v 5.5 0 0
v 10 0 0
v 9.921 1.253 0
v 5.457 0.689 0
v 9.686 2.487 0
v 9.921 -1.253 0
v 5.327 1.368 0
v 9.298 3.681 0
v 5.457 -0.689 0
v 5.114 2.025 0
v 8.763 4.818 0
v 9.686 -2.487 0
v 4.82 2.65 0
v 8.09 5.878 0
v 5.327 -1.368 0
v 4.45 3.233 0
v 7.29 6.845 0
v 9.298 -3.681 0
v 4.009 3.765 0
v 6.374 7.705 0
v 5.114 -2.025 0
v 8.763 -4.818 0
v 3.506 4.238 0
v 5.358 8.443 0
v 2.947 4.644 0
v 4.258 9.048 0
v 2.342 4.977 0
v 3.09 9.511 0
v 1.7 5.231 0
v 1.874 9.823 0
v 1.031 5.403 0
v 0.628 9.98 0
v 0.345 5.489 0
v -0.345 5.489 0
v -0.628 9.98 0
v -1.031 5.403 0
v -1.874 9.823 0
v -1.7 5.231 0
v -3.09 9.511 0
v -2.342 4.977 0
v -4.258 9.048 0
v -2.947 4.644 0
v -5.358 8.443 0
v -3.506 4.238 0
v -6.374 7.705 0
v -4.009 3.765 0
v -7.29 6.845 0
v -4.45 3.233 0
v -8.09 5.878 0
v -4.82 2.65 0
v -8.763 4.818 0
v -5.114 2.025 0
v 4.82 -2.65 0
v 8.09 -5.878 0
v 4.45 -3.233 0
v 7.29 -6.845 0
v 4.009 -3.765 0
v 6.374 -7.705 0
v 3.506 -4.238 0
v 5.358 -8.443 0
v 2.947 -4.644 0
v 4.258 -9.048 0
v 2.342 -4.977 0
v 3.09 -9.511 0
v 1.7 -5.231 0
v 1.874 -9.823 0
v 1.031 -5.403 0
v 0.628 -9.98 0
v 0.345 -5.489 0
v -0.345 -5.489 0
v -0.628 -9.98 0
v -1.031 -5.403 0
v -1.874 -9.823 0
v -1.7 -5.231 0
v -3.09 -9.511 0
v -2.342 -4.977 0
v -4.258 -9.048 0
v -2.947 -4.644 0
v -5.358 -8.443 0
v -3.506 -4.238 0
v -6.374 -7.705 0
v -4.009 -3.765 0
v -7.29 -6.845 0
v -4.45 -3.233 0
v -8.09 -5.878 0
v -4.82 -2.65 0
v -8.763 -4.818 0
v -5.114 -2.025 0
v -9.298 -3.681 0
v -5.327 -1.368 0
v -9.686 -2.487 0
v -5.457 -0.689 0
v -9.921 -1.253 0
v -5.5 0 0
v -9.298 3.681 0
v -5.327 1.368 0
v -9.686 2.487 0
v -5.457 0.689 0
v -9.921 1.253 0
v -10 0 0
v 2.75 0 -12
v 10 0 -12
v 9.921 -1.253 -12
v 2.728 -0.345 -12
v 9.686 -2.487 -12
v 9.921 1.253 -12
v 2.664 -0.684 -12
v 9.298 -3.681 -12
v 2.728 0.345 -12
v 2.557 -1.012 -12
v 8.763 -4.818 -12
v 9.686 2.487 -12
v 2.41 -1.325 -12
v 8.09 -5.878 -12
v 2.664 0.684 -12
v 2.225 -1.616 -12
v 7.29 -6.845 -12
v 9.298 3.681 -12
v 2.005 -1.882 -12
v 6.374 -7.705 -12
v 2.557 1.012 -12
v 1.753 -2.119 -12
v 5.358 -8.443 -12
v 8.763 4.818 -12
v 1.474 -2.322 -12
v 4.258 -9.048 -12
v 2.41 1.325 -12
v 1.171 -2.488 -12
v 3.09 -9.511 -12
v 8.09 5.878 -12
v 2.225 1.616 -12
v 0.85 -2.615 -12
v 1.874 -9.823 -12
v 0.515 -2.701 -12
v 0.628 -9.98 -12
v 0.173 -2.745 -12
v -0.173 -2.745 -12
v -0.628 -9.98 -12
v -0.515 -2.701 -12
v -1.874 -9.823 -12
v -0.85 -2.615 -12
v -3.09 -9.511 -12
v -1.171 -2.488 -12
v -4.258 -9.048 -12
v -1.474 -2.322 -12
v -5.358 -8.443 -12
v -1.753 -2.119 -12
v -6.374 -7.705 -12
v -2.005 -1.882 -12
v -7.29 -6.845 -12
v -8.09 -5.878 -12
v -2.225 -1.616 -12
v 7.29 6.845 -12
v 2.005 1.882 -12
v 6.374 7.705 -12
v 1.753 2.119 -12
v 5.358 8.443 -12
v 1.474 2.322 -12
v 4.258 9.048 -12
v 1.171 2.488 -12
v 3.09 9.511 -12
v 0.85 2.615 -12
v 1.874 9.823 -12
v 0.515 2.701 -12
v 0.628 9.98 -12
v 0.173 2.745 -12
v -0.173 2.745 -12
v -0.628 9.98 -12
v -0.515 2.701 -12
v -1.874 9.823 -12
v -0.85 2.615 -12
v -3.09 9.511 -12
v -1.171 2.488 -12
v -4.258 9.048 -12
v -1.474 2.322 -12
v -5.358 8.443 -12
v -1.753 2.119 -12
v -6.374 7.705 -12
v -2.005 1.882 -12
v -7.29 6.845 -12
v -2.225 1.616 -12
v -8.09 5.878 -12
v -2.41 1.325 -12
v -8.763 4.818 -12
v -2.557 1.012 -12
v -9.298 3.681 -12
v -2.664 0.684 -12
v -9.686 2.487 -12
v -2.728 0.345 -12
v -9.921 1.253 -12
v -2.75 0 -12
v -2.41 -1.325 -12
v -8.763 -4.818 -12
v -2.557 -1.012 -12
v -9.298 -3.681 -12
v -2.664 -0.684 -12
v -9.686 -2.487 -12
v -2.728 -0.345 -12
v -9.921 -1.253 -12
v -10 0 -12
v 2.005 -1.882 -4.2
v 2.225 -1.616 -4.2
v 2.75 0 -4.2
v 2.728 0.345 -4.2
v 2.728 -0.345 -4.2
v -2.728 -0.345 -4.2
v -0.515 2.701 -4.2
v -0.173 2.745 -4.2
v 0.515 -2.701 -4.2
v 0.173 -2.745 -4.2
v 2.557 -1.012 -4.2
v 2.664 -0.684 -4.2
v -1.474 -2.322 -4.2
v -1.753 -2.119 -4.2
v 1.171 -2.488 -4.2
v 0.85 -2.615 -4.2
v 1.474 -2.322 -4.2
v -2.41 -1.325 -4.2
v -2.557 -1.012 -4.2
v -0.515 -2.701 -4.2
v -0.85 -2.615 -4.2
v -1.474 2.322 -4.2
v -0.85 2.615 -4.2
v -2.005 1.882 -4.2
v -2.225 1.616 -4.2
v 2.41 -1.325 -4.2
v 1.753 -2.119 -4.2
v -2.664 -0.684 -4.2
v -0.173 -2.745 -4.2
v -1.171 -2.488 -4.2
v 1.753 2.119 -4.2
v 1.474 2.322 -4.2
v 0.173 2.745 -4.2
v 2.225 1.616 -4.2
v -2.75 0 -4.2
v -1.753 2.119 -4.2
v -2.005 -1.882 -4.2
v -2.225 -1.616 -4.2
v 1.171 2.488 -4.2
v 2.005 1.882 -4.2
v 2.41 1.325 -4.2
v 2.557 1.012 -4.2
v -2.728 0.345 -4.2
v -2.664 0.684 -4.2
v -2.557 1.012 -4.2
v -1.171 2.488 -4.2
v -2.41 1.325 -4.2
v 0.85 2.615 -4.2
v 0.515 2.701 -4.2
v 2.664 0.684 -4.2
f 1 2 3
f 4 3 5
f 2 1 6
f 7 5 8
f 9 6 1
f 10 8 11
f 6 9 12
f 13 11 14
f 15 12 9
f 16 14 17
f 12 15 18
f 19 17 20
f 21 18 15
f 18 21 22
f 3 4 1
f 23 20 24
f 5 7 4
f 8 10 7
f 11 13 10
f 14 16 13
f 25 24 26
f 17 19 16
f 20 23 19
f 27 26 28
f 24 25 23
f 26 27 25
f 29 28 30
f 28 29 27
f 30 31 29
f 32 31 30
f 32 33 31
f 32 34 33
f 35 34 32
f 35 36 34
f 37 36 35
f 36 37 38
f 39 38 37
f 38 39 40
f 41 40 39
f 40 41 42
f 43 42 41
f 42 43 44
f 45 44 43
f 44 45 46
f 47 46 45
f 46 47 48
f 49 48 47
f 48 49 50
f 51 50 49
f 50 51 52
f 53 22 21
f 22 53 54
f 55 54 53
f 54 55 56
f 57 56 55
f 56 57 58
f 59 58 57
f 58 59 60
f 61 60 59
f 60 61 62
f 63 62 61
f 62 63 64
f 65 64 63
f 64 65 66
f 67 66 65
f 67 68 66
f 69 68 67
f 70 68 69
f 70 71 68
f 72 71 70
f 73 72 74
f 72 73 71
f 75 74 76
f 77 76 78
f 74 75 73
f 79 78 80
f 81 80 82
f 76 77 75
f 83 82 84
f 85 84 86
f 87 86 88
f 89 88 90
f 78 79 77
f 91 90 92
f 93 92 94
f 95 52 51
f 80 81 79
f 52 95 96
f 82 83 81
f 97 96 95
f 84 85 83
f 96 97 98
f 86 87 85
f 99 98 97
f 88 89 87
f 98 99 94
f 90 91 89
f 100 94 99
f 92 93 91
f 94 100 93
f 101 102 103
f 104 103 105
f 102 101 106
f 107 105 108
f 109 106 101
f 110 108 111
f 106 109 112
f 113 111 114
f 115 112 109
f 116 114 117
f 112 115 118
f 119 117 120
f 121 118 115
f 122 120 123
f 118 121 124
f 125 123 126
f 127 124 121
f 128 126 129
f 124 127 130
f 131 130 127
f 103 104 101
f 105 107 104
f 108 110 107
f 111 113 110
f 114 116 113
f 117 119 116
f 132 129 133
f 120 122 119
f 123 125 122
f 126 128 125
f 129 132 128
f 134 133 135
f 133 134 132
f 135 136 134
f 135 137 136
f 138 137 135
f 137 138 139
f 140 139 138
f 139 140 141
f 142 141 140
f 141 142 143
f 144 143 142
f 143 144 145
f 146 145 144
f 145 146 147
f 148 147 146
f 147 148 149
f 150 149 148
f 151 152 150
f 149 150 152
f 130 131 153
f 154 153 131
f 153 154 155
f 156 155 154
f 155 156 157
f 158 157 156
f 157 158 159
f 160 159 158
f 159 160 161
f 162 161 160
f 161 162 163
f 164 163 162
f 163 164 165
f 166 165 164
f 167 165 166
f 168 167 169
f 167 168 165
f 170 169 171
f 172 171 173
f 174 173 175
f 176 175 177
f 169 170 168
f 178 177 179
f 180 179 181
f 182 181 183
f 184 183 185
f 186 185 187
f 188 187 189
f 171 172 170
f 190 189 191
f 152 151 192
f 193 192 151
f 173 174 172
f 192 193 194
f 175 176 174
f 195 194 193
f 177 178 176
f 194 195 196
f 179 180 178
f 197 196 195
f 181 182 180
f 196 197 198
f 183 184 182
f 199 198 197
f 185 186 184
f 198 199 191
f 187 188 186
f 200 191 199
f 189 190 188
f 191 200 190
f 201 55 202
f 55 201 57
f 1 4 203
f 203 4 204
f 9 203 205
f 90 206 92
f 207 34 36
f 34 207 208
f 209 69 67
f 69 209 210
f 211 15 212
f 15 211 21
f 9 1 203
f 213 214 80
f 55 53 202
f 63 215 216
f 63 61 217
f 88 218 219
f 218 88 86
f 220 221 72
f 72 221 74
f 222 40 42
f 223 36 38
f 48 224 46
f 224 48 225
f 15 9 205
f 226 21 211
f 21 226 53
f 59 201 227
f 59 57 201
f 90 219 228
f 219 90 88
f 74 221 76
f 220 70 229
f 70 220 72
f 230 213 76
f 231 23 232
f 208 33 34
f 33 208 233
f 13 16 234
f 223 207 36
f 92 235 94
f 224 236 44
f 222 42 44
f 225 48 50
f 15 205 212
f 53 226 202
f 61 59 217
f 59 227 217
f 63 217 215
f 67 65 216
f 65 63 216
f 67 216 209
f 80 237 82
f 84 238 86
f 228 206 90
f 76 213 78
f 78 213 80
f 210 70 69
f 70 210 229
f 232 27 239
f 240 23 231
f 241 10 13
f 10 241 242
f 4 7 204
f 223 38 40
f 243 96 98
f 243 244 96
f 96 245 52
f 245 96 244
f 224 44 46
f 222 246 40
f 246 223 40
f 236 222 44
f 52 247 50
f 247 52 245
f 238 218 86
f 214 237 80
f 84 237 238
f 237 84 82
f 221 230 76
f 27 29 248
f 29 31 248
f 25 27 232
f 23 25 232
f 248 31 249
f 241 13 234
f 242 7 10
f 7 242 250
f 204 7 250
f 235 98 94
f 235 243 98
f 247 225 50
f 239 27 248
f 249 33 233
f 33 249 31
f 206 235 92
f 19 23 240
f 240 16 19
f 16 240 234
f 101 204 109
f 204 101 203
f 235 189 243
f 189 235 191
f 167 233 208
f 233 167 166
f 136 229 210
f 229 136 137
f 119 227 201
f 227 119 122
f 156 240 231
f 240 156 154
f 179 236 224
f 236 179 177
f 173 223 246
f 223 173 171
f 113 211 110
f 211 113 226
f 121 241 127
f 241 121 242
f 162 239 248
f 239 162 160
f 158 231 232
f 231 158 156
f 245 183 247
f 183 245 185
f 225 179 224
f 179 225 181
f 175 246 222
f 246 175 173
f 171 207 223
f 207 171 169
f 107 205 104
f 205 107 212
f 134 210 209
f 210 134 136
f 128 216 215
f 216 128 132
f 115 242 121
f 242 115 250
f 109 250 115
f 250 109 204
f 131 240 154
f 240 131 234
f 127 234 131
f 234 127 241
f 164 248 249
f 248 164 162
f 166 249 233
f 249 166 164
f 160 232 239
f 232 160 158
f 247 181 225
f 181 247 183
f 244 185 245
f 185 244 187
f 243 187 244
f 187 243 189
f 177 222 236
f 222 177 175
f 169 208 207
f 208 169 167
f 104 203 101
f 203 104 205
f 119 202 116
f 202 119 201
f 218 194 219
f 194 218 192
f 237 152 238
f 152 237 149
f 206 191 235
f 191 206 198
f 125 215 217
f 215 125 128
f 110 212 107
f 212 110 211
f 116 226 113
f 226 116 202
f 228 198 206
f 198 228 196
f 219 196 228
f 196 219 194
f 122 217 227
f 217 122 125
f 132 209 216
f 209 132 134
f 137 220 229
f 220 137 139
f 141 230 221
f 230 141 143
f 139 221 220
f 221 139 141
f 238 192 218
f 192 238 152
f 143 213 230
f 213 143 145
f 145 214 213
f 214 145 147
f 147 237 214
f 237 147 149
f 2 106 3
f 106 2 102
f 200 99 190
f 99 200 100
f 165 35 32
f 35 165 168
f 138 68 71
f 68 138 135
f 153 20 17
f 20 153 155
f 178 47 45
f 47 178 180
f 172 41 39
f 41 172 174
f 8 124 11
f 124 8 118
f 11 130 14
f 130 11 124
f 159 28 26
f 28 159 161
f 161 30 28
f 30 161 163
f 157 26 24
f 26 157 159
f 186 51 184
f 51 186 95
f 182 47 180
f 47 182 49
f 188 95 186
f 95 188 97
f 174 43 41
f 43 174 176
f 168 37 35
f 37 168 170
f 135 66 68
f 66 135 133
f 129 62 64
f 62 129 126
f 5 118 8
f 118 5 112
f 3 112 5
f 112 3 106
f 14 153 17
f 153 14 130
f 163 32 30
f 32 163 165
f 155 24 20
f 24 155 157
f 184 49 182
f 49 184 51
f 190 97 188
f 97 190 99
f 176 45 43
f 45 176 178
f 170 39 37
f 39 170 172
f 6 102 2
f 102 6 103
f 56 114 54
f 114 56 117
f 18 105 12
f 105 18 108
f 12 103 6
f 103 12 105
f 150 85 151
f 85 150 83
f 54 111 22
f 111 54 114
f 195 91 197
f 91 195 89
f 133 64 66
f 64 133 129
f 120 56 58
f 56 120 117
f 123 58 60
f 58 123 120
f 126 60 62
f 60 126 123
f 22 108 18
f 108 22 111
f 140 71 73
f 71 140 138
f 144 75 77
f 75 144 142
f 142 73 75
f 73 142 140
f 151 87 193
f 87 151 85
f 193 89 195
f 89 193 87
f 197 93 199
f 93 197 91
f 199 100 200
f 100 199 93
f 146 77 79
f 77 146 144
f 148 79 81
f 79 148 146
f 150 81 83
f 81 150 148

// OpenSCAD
$fn = 50;


difference() {
	union() {
		translate(v = [0, 0, -12.0000000000]) {
			cylinder(h = 12, r = 10.0000000000);
		}
		cylinder(h = 0, r = 13.0000000000);
	}
	union() {
		translate(v = [0, 0, 0]) {
			rotate(a = [0, 0, 0]) {
				difference() {
					union() {
						#translate(v = [0, 0, -12.0000000000]) {
							cylinder(h = 12, r = 2.2500000000);
						}
						#translate(v = [0, 0, -4.2000000000]) {
							cylinder(h = 4.2000000000, r1 = 2.7500000000, r2 = 5.5000000000);
						}
						#translate(v = [0, 0, -12.0000000000]) {
							cylinder(h = 12, r = 2.7500000000);
						}
						#translate(v = [0, 0, -12.0000000000]) {
							cylinder(h = 12, r = 2.2500000000);
						}
					}
					union();
				}
			}
		}
	}
}
